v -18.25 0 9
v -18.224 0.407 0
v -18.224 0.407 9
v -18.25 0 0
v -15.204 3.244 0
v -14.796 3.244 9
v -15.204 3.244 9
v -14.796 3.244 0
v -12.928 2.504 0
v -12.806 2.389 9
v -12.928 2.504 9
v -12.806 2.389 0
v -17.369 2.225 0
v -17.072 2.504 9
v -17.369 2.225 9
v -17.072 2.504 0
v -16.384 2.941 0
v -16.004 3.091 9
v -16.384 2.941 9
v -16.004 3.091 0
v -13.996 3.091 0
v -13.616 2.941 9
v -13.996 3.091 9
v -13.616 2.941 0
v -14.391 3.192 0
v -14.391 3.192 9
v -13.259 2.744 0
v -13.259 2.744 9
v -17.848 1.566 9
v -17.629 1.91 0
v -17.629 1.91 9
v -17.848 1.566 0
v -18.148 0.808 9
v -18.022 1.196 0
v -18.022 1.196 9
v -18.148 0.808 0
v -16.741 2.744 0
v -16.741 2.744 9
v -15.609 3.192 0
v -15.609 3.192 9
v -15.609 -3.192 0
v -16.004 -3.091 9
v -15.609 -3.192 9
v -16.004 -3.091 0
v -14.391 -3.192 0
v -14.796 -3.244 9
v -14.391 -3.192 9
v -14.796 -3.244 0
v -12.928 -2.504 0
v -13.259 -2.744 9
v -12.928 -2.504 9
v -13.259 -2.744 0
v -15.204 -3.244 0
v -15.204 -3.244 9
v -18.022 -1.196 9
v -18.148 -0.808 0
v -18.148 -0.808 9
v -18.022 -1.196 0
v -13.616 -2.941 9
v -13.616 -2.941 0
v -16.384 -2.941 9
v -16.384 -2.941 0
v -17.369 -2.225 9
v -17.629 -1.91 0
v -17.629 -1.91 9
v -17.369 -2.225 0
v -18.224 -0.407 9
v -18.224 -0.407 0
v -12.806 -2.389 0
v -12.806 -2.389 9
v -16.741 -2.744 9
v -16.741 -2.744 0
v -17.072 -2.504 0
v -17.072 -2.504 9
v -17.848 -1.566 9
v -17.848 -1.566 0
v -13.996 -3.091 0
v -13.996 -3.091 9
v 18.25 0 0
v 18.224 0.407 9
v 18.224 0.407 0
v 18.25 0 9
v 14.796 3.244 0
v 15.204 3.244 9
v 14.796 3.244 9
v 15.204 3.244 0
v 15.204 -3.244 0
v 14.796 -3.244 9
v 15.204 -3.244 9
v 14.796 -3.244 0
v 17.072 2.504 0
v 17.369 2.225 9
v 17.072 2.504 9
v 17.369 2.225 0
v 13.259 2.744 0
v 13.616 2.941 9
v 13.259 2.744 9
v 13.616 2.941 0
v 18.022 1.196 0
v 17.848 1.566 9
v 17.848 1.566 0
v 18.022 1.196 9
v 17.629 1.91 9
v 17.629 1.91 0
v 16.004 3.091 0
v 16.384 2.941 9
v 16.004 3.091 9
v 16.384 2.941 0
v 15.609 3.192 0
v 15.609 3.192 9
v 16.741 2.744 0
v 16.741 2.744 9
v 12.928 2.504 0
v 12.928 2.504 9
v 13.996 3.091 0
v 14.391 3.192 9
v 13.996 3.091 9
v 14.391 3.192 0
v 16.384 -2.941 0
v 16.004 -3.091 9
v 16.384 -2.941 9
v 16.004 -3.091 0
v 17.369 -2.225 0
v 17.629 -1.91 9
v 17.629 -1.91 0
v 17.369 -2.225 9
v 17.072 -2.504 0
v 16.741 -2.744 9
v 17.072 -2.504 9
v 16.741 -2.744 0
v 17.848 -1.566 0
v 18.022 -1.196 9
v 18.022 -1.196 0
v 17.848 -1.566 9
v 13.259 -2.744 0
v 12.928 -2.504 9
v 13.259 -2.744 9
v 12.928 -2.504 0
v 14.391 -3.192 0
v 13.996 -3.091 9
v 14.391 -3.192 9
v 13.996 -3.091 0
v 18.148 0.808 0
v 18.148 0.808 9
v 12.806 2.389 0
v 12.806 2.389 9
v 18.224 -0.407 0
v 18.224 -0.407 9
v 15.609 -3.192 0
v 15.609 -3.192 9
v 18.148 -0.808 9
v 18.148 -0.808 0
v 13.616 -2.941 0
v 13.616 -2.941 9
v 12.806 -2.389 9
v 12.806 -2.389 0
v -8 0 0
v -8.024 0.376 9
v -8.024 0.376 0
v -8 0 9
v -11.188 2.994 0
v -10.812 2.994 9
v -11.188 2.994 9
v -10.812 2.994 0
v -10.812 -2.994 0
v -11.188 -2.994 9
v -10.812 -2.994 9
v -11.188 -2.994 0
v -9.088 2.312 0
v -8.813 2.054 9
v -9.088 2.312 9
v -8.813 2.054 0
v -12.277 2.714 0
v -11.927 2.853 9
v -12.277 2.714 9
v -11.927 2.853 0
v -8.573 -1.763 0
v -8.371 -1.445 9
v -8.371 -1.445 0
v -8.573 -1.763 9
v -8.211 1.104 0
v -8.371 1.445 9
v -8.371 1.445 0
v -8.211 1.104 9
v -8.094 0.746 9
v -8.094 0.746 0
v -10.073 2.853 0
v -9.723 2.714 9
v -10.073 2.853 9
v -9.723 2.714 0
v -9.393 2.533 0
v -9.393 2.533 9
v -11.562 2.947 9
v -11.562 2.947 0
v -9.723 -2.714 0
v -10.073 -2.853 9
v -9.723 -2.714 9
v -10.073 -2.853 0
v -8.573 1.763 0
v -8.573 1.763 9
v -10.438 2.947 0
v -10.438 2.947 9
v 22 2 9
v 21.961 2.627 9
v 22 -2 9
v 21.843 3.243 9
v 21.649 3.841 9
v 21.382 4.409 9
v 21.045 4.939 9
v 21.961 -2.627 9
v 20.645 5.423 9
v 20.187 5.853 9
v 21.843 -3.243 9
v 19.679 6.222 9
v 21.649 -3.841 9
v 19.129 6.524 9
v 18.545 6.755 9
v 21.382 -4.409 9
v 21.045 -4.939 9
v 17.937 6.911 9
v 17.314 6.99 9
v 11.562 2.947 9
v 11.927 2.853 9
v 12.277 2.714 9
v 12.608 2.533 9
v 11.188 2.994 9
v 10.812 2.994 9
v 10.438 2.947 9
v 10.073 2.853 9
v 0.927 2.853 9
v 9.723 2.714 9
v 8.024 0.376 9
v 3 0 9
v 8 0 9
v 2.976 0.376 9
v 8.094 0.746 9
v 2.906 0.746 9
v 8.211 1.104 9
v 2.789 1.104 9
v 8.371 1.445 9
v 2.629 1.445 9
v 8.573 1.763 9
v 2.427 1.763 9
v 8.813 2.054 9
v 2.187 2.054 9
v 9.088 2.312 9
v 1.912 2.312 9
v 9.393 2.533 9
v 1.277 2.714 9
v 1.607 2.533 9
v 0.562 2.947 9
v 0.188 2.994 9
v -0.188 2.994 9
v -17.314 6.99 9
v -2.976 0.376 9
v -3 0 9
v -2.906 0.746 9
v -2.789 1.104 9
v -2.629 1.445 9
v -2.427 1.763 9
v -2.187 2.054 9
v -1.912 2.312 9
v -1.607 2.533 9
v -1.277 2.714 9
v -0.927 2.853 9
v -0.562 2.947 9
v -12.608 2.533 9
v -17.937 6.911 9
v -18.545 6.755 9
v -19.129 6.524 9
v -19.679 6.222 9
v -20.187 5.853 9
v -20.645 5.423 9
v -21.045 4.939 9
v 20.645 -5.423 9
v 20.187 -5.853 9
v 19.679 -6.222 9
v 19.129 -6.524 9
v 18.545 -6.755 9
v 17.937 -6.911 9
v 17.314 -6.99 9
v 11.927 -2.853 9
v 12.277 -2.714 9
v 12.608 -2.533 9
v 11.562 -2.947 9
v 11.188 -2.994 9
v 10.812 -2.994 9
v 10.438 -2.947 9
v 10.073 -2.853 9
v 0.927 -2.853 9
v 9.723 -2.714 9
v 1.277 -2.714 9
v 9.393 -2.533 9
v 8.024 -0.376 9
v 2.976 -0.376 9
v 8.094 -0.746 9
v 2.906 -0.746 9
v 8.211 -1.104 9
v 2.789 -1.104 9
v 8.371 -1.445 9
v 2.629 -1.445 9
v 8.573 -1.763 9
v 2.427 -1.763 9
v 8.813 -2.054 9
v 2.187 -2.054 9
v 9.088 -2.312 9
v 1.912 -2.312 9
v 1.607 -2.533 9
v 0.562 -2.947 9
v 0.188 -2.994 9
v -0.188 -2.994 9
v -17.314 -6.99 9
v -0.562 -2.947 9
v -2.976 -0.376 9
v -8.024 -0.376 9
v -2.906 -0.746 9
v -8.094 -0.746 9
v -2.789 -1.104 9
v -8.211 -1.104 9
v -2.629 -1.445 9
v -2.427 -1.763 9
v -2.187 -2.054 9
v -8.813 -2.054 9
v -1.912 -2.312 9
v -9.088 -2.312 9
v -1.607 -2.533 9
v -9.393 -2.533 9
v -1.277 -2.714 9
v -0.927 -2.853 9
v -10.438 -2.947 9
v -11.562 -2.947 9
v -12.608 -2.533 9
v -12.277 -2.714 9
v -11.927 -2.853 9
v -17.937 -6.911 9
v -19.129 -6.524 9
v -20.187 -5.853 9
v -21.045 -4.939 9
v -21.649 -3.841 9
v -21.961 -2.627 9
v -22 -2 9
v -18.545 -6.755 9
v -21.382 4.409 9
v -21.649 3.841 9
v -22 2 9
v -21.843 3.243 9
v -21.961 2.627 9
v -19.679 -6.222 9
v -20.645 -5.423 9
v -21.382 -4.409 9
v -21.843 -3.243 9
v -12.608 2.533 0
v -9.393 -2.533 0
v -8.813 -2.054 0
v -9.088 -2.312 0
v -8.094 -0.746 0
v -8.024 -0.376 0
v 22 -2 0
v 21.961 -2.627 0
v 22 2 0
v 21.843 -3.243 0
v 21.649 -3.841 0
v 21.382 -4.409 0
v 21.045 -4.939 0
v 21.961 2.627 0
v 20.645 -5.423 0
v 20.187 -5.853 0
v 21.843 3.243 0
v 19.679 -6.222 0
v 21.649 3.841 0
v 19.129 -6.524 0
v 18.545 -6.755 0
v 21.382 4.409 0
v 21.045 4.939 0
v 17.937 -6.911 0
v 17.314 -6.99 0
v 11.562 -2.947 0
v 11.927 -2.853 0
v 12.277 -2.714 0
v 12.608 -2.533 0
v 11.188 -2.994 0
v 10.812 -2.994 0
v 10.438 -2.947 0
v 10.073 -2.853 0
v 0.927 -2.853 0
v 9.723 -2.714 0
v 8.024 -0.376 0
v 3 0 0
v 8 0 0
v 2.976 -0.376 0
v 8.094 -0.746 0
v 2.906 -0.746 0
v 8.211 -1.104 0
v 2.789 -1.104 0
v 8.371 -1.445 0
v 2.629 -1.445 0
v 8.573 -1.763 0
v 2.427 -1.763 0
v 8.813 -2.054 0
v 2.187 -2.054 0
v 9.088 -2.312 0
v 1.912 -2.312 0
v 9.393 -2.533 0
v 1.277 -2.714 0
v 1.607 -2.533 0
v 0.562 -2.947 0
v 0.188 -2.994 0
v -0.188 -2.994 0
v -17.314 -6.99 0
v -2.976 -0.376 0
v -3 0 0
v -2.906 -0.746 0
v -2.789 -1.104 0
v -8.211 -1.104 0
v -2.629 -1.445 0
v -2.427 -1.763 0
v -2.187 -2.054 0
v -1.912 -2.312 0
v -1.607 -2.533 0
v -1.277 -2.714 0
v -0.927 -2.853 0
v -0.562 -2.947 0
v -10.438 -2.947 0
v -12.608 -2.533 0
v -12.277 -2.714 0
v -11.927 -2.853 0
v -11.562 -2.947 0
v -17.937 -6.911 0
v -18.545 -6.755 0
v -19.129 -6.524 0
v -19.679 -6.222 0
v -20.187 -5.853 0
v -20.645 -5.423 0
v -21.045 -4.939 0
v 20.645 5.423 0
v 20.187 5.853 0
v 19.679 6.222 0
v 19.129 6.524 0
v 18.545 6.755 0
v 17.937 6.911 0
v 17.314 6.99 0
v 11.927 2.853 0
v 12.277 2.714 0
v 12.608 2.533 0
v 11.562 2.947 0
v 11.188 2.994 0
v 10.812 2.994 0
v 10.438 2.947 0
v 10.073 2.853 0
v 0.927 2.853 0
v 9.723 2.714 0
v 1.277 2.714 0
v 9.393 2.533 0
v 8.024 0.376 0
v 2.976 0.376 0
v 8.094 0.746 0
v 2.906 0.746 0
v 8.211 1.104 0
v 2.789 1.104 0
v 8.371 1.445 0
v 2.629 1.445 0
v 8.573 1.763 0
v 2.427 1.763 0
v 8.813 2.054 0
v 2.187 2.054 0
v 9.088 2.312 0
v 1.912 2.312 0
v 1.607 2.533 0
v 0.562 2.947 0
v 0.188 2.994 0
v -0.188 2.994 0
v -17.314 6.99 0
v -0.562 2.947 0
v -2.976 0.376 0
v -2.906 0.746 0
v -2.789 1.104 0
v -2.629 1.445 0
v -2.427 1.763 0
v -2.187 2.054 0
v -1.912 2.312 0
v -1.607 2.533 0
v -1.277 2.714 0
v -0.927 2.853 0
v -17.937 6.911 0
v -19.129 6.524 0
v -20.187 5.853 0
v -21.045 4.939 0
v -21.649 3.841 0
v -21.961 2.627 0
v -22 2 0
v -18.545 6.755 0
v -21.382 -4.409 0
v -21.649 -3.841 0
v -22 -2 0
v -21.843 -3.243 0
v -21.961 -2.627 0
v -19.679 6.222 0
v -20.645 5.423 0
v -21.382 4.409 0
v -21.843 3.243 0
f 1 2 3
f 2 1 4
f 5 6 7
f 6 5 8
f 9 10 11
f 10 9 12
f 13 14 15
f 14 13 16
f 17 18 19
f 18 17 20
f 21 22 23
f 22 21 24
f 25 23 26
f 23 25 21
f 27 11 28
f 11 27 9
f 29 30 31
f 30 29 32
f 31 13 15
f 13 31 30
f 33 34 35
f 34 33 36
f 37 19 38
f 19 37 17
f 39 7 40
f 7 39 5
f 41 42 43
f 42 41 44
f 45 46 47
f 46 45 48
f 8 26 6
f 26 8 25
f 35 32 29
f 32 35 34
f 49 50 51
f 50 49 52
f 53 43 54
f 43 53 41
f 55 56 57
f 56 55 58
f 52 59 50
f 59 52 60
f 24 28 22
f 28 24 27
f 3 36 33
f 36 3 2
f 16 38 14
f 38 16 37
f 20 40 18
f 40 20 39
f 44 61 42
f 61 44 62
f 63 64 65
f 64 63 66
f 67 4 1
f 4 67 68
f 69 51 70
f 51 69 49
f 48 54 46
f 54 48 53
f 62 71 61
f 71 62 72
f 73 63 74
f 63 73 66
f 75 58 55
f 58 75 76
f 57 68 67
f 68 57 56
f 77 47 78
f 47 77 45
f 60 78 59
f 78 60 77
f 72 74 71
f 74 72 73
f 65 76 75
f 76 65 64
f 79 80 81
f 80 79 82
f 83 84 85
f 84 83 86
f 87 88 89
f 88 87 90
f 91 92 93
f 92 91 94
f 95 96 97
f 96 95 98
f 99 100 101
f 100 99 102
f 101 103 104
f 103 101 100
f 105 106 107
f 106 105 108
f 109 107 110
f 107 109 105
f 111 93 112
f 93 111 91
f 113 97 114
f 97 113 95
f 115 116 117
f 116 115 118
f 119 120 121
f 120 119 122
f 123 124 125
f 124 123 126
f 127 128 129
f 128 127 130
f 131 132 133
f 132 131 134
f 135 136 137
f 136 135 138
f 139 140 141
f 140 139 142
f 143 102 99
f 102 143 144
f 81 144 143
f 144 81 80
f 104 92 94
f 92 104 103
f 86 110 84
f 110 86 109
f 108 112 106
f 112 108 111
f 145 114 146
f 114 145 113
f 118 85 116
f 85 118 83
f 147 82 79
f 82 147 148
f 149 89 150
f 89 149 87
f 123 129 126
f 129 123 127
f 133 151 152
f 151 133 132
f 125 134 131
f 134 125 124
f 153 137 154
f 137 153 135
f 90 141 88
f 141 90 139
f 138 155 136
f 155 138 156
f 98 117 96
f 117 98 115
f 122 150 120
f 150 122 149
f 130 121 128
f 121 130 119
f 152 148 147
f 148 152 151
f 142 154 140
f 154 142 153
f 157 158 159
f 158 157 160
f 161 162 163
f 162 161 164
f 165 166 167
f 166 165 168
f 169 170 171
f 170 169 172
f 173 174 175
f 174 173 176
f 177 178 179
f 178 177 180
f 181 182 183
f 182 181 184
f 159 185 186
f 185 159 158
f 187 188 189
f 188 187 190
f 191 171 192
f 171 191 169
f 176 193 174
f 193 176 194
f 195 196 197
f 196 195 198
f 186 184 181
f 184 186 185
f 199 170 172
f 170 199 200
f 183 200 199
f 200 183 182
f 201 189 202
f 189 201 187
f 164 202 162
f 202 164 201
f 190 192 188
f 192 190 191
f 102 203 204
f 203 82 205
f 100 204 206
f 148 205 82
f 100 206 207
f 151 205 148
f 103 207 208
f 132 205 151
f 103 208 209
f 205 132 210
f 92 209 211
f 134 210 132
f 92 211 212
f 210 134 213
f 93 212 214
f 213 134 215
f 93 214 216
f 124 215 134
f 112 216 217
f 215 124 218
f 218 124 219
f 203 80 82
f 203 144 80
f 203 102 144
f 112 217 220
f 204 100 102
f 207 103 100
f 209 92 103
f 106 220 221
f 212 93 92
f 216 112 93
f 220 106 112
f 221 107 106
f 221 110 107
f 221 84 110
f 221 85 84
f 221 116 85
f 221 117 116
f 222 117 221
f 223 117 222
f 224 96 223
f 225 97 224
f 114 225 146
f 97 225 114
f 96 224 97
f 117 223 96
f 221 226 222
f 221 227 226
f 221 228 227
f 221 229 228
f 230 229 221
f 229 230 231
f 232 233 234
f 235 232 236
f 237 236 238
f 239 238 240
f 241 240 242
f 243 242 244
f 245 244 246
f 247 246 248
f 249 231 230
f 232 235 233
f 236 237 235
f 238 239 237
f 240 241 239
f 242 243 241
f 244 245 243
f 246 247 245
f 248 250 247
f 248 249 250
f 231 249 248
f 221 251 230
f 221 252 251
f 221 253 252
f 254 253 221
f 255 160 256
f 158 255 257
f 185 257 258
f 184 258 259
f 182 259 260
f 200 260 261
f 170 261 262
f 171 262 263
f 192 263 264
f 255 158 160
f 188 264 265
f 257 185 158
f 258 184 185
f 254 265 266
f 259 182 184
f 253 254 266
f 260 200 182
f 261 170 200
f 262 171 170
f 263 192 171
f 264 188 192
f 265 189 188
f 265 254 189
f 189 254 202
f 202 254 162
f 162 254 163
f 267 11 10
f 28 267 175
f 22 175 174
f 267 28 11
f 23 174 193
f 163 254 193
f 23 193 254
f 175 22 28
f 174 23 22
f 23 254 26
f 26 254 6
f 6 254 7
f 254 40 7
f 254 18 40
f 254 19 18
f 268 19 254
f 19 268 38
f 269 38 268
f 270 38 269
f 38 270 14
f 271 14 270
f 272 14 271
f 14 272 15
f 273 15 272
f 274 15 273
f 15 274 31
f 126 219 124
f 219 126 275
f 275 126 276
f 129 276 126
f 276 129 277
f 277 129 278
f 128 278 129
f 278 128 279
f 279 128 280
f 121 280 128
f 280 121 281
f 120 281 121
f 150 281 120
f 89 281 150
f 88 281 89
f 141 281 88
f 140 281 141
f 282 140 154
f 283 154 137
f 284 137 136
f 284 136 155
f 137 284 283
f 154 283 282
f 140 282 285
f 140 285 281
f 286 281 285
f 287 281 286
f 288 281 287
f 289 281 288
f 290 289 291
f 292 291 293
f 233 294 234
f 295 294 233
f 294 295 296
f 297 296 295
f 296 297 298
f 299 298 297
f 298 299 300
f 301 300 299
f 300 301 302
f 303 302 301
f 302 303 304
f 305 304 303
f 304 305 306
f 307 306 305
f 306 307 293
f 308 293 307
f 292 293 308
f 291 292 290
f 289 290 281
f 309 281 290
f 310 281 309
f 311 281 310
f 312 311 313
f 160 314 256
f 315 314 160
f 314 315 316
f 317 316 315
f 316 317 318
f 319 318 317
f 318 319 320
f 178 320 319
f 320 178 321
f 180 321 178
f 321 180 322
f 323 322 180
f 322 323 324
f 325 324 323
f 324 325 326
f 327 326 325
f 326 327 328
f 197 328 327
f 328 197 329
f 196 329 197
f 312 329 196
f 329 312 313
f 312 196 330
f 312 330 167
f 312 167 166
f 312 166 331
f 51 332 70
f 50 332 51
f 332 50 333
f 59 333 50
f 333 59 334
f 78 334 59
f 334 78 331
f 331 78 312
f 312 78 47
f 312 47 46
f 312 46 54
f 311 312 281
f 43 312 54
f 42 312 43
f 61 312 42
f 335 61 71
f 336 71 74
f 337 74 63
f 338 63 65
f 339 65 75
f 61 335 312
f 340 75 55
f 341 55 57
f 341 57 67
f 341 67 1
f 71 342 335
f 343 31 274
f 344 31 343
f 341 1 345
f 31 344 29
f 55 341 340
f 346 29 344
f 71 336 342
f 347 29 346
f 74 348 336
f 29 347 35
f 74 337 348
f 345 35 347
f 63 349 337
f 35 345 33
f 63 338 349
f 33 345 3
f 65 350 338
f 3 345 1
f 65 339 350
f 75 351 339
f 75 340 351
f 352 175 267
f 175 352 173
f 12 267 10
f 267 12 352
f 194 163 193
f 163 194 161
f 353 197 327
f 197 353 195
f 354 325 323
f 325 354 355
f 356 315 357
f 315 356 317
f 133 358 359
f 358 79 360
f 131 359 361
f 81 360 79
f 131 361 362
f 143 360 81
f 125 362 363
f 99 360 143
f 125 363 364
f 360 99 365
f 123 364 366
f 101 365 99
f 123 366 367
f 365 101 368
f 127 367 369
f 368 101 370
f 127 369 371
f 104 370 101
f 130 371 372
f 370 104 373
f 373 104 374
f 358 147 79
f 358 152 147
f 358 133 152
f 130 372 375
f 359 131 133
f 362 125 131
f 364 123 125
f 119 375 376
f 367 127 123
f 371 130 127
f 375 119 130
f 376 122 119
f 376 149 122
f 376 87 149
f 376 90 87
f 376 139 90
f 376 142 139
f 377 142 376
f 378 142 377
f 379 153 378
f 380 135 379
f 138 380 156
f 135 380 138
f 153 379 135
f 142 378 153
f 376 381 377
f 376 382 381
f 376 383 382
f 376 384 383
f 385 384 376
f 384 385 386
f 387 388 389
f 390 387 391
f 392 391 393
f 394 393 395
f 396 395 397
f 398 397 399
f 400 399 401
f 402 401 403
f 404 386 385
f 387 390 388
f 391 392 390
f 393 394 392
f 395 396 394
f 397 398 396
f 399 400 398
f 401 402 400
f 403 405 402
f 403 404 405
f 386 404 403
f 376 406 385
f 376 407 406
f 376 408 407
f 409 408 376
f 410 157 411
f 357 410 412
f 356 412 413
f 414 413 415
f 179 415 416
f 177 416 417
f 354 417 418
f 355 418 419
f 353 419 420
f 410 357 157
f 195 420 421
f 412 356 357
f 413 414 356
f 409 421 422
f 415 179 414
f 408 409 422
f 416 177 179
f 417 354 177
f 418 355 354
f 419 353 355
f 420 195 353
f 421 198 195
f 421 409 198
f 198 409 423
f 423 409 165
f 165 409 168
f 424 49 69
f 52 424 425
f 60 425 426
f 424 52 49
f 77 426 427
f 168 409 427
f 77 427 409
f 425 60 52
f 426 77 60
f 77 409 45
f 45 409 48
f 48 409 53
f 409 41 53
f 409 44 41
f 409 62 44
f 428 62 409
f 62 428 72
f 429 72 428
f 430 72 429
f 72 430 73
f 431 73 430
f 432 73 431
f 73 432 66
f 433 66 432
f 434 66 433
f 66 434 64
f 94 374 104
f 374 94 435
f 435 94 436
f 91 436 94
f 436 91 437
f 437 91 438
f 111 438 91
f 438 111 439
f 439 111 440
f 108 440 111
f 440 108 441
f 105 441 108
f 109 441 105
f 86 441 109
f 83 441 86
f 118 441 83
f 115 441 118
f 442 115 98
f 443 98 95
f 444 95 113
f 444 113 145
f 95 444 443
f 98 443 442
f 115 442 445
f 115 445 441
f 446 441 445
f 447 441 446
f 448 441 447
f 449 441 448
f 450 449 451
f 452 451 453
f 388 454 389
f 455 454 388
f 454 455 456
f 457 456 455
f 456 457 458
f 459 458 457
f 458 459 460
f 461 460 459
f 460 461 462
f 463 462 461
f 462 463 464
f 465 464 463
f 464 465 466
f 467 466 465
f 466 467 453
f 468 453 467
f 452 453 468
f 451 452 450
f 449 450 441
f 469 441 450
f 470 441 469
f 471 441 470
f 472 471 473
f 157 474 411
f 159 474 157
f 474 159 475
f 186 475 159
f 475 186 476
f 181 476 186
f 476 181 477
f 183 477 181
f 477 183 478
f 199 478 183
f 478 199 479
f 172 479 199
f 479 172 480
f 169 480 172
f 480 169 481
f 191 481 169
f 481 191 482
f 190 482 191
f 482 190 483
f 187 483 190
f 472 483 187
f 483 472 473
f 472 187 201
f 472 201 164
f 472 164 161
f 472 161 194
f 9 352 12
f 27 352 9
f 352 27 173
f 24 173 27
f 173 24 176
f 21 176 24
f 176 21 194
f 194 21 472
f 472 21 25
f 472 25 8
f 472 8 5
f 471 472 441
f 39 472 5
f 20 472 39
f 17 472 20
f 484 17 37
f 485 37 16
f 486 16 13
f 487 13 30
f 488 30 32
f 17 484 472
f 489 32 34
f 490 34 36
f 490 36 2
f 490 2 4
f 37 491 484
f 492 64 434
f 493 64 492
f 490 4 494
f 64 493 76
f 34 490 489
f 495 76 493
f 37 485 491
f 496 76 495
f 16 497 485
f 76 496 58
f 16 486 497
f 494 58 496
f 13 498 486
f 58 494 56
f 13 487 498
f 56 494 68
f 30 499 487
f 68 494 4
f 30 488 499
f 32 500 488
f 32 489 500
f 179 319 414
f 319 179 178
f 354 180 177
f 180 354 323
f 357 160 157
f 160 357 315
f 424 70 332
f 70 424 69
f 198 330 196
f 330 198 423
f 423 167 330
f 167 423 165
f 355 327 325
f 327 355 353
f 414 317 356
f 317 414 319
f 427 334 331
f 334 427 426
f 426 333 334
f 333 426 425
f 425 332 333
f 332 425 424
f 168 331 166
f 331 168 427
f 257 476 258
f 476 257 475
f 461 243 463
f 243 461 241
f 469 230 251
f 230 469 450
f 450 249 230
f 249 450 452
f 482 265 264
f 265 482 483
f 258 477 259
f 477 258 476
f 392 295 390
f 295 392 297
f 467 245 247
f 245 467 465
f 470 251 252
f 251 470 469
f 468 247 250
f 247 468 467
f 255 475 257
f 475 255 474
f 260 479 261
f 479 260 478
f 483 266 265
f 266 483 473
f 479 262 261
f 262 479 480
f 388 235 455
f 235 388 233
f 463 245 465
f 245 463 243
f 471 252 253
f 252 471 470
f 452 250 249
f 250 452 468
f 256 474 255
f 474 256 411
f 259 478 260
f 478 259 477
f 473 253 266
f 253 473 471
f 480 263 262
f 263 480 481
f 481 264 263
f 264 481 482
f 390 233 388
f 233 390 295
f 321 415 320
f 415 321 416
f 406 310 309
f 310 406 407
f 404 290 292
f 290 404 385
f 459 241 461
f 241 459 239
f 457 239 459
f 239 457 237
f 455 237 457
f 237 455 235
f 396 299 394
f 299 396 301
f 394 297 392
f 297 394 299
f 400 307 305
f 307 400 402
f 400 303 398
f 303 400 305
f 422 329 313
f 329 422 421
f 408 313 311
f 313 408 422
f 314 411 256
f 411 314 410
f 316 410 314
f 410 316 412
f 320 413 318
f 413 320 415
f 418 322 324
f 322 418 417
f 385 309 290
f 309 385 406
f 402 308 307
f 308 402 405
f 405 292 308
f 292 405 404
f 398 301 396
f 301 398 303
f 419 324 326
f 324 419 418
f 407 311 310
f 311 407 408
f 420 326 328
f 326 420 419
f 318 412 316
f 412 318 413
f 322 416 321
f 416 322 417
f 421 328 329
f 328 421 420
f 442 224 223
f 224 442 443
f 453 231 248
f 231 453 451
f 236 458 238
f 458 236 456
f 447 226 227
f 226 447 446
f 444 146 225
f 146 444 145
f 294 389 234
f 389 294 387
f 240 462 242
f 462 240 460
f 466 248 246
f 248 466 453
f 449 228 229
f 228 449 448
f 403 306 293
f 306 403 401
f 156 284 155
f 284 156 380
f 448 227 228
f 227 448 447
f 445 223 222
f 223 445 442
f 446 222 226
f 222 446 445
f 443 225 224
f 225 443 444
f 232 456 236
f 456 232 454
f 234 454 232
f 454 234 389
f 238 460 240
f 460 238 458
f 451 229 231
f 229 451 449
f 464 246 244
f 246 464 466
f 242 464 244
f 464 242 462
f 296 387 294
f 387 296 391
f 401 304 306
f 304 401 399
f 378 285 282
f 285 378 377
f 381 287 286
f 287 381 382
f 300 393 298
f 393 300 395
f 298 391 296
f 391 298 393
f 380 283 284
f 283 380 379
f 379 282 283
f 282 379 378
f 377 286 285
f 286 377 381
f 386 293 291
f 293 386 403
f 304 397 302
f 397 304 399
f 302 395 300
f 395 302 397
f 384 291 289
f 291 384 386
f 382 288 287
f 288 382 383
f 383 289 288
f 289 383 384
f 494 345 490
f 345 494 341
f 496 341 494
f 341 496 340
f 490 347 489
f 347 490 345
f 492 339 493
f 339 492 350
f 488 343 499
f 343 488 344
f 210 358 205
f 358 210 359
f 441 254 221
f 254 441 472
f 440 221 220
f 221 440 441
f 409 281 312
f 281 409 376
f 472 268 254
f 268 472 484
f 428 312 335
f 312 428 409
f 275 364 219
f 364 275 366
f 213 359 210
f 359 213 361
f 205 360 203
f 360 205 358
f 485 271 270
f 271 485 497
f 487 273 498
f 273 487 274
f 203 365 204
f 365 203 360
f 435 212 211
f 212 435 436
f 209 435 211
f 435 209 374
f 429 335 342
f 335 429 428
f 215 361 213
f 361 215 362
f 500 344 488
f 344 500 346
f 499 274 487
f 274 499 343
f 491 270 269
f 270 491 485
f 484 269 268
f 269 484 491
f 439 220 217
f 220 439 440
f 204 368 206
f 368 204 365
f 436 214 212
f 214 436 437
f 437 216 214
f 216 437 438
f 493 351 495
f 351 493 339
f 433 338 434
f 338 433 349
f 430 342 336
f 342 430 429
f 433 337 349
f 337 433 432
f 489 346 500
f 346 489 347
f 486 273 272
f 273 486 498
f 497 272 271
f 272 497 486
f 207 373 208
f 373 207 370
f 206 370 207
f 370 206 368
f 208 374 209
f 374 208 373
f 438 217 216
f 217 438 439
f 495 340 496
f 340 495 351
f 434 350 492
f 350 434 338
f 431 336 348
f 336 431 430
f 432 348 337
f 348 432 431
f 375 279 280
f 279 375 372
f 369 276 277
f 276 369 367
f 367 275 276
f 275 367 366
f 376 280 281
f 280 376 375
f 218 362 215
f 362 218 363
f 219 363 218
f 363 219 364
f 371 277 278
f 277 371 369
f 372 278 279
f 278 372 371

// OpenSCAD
$fn = 50;


difference() {
	union() {
		hull() {
			translate(v = [-17.0000000000, 2.0000000000, 0]) {
				cylinder(h = 9, r = 5);
			}
			translate(v = [17.0000000000, 2.0000000000, 0]) {
				cylinder(h = 9, r = 5);
			}
			translate(v = [-17.0000000000, -2.0000000000, 0]) {
				cylinder(h = 9, r = 5);
			}
			translate(v = [17.0000000000, -2.0000000000, 0]) {
				cylinder(h = 9, r = 5);
			}
		}
	}
	union() {
		#translate(v = [-15.0000000000, 0.0000000000, -100.0000000000]) {
			cylinder(h = 200, r = 3.2500000000);
		}
		#translate(v = [-15.0000000000, 0.0000000000, -100.0000000000]) {
			cylinder(h = 200, r = 3.2500000000);
		}
		#translate(v = [15.0000000000, 0.0000000000, -100.0000000000]) {
			cylinder(h = 200, r = 3.2500000000);
		}
		#translate(v = [15.0000000000, 0.0000000000, -100.0000000000]) {
			cylinder(h = 200, r = 3.2500000000);
		}
		#translate(v = [-11.0000000000, 0, 0]) {
			cylinder(h = 9, r = 3.0000000000);
		}
		#cylinder(h = 9, r = 3.0000000000);
		#translate(v = [11.0000000000, 0, 0]) {
			cylinder(h = 9, r = 3.0000000000);
		}
	}
}
